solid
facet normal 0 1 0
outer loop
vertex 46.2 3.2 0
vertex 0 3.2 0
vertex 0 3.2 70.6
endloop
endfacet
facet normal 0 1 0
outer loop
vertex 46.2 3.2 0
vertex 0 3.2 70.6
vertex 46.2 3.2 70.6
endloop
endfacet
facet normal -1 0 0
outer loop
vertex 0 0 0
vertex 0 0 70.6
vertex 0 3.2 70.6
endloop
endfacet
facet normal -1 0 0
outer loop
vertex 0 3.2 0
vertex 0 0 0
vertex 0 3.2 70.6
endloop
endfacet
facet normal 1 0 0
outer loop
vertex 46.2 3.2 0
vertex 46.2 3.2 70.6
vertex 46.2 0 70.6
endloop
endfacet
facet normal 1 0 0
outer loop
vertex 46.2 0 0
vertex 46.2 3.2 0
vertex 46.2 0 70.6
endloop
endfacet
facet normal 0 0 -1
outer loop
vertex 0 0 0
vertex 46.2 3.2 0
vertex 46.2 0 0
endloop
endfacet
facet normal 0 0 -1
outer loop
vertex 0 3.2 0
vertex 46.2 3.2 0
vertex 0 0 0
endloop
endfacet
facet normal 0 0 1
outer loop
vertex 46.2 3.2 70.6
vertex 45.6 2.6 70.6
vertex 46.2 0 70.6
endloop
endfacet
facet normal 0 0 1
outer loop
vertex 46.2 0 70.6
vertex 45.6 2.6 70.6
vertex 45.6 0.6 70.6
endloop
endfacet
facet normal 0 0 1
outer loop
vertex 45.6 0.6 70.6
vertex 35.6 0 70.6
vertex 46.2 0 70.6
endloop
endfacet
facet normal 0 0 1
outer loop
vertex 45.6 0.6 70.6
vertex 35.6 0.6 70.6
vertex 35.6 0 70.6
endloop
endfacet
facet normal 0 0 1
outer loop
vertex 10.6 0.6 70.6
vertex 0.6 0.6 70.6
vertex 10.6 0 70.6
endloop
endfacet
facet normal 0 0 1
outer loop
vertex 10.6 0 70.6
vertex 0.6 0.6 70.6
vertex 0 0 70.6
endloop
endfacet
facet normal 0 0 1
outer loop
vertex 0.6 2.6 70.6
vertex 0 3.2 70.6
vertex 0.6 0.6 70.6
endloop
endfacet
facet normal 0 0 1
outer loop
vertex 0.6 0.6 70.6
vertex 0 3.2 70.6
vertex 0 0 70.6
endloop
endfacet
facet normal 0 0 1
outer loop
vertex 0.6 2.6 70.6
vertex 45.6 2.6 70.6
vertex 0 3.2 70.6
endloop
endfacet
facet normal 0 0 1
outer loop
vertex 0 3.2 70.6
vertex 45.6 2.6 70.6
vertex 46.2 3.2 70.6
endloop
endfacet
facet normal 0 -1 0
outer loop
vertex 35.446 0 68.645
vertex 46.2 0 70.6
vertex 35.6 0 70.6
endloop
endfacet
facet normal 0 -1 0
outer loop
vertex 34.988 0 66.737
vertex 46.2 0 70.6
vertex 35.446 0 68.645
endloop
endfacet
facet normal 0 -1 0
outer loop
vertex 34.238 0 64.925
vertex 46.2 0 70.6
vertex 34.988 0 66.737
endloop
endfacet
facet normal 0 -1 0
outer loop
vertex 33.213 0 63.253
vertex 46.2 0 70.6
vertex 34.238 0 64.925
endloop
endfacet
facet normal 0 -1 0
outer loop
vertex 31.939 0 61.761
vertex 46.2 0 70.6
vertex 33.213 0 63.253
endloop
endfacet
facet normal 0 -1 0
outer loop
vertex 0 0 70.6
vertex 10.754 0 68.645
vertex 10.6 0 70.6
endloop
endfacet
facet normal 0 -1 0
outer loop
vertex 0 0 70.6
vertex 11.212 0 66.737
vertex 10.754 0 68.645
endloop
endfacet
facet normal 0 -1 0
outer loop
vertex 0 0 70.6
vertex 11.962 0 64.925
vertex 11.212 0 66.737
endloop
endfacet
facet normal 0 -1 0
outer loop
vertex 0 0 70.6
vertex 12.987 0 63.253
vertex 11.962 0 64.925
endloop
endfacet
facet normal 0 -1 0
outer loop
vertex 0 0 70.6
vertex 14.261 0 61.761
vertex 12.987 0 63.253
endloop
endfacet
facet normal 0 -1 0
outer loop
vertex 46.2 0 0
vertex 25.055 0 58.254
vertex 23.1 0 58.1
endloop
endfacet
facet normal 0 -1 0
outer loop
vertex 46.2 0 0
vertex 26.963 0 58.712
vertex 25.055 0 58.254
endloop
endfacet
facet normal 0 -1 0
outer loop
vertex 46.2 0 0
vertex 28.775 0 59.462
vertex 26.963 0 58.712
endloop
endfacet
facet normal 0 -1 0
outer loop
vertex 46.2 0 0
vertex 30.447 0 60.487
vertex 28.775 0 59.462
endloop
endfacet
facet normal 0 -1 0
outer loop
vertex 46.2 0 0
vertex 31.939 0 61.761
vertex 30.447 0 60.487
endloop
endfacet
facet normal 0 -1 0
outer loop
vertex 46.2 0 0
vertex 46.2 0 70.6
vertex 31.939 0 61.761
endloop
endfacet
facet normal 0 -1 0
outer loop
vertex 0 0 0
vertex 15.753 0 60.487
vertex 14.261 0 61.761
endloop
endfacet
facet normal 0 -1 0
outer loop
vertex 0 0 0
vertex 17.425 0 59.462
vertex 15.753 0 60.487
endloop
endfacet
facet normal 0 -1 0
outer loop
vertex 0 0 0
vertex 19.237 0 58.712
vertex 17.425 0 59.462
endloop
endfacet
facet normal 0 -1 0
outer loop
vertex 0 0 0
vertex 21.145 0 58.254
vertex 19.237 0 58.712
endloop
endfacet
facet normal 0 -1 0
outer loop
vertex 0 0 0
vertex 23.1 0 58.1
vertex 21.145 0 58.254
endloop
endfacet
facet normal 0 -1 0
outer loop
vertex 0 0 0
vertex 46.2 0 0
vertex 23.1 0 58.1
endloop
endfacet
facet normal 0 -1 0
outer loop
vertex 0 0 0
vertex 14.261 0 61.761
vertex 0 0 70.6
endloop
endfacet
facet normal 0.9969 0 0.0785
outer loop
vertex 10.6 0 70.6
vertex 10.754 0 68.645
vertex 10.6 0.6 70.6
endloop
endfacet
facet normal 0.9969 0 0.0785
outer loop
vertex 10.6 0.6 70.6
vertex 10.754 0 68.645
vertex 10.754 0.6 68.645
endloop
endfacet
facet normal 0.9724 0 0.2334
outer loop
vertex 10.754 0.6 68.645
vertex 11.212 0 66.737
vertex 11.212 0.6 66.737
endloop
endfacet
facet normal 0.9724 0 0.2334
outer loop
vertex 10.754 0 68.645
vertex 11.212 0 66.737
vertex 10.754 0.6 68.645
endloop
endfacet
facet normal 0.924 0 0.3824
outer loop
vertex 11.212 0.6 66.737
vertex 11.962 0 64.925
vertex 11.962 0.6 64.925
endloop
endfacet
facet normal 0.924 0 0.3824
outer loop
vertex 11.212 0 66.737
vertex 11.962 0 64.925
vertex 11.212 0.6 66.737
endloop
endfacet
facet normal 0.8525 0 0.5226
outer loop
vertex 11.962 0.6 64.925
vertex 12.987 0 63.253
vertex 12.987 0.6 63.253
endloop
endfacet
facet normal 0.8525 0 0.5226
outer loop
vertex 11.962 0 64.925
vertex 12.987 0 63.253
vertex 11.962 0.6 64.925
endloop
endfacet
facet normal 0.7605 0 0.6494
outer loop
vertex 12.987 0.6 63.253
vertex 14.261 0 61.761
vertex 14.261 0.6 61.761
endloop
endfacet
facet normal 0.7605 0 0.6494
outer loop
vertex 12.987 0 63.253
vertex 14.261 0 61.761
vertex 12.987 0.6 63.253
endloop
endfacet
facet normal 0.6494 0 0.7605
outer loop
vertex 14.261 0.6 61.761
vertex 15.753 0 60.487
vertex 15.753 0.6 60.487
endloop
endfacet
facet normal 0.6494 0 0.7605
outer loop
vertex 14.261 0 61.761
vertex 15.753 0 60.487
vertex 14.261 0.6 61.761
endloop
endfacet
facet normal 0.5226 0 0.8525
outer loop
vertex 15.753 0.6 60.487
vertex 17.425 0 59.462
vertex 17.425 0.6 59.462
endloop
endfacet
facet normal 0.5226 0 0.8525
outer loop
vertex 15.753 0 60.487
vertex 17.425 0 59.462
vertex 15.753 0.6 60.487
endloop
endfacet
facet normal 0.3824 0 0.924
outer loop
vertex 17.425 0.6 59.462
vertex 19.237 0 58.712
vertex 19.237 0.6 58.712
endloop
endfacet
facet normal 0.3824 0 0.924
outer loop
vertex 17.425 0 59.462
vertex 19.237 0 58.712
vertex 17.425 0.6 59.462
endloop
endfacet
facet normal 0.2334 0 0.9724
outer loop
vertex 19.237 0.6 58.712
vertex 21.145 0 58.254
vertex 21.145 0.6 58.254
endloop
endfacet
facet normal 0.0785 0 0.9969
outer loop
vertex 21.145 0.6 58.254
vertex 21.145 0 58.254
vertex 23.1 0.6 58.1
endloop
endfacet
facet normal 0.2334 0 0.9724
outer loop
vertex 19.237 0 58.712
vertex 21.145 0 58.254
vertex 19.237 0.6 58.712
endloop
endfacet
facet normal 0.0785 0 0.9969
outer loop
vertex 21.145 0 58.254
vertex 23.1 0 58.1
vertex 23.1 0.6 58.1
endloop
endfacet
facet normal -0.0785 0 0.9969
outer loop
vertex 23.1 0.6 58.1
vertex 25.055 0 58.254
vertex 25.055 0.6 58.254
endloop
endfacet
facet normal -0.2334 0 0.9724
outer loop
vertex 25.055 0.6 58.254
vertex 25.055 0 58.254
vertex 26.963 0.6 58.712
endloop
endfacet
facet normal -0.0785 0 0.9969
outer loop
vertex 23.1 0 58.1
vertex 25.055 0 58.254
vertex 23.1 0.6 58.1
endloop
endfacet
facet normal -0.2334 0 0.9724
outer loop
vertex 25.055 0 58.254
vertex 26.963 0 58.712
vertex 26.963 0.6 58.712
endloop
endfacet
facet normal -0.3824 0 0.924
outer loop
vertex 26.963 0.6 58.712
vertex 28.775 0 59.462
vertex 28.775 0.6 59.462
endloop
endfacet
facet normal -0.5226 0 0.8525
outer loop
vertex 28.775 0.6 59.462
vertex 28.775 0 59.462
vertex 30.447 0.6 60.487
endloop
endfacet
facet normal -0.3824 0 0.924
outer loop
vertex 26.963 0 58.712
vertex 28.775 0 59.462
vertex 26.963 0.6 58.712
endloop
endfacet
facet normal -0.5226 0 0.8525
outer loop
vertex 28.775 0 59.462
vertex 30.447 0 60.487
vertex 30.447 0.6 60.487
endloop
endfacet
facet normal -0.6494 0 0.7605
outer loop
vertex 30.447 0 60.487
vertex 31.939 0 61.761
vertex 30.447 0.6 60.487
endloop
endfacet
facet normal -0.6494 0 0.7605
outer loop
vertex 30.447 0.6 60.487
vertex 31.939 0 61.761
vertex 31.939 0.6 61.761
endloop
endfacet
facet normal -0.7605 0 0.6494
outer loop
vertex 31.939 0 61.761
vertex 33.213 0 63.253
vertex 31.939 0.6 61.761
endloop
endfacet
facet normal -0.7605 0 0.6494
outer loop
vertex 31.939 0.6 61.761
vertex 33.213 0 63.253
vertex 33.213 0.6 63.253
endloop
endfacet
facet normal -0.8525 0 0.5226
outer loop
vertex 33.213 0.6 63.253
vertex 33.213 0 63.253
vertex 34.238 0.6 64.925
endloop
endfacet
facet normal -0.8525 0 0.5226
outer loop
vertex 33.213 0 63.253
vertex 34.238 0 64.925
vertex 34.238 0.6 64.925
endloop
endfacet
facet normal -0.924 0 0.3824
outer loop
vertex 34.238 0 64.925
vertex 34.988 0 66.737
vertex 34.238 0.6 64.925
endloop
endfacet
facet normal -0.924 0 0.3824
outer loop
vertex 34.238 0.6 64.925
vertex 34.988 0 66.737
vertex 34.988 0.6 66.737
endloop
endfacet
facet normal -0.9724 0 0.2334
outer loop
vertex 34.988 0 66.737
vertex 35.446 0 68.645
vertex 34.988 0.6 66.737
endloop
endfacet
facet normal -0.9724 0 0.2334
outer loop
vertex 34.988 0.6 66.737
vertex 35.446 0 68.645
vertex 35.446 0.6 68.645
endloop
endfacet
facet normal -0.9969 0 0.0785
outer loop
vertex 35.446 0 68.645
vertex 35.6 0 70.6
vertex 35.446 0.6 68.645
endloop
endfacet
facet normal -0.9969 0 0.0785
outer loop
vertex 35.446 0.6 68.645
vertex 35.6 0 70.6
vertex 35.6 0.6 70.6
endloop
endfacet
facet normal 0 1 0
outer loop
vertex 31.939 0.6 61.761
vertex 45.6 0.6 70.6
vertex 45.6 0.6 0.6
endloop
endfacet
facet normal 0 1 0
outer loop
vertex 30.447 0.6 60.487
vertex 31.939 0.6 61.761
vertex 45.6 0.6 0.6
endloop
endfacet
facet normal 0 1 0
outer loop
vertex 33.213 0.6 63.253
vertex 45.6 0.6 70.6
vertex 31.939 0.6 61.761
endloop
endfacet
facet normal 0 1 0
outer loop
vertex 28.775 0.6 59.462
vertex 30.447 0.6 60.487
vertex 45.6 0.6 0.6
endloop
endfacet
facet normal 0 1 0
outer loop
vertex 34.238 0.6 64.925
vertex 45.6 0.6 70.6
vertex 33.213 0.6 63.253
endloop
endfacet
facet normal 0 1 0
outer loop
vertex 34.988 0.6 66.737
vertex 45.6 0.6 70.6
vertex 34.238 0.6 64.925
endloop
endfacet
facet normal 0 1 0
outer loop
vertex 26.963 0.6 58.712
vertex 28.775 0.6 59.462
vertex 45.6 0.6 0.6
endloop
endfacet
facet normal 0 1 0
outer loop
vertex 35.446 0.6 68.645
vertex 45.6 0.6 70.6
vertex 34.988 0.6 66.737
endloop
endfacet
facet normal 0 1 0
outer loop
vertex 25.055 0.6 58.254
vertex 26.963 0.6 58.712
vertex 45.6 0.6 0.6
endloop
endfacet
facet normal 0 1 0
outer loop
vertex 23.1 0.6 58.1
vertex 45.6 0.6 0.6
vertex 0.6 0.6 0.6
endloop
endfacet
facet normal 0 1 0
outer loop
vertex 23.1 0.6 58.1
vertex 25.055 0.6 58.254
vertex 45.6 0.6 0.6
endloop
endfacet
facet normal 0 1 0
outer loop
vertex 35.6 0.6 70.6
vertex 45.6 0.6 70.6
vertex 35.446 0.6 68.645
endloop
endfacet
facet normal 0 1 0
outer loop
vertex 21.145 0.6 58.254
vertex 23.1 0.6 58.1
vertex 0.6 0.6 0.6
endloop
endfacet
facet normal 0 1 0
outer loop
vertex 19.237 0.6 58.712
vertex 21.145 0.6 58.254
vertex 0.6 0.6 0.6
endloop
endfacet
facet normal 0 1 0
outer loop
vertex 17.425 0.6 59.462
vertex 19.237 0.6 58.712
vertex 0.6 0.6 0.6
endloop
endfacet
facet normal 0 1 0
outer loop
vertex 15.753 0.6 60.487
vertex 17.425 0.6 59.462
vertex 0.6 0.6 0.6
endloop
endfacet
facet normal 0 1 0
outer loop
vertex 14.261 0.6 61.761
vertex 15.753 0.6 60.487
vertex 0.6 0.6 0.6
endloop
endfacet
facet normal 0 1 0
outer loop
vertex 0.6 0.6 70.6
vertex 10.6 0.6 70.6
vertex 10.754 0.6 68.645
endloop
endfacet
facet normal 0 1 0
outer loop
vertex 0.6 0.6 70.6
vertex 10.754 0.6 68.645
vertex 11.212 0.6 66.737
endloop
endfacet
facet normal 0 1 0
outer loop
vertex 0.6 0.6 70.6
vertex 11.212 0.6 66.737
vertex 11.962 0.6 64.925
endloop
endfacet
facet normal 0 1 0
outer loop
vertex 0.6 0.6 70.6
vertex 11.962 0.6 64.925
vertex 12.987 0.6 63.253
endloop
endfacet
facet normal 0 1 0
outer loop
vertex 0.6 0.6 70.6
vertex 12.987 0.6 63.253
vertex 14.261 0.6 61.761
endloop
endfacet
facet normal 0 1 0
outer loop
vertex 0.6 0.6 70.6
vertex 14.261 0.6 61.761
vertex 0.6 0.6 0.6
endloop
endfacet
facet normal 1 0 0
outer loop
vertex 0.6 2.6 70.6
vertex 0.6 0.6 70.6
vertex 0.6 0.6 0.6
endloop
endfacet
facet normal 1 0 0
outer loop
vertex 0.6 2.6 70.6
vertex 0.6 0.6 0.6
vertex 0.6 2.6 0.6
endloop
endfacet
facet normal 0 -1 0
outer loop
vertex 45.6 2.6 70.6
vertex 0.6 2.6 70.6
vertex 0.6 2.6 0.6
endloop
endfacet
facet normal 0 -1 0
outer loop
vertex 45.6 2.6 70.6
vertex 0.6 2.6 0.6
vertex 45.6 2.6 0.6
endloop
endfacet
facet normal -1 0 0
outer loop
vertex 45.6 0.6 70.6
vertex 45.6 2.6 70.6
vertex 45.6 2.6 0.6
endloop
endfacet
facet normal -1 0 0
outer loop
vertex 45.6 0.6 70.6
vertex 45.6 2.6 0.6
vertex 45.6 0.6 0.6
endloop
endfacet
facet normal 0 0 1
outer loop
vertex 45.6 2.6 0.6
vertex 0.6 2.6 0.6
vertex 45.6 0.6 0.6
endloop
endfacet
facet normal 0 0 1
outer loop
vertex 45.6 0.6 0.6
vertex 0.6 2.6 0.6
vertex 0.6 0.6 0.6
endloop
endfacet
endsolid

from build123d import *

# Parameters (mm, degrees)
SKETCH_W        = 46.2
SKETCH_H        = 3.2
PAD_DEPTH       = 70.6
SKETCH001_W     = 45
SKETCH001_H     = 2
POCKET_DEPTH    = 70
SKETCH002_R     = 12.5
POCKET001_DEPTH = 0.6


with BuildPart() as part:
    # Sketch → Pad (new body)
    with BuildSketch(Plane.XY):
        with Locations((23.1, 1.6)):
            Rectangle(SKETCH_W, SKETCH_H)
    extrude(amount=PAD_DEPTH)

    # Sketch001 (on Face6 of Pad) → Pocket (cut)
    with BuildSketch(Plane.XY.offset(70.6)):
        with Locations((23.1, 1.6)):
            Rectangle(SKETCH001_W, SKETCH001_H)
    extrude(amount=-POCKET_DEPTH, mode=Mode.SUBTRACT)

    # Sketch002 (on Face6 of Pocket) → Pocket001 (cut)
    with BuildSketch(Plane.XZ):
        with Locations((23.1, 70.6)):
            Circle(SKETCH002_R)
    extrude(amount=-POCKET001_DEPTH, mode=Mode.SUBTRACT)


solid = part.part
